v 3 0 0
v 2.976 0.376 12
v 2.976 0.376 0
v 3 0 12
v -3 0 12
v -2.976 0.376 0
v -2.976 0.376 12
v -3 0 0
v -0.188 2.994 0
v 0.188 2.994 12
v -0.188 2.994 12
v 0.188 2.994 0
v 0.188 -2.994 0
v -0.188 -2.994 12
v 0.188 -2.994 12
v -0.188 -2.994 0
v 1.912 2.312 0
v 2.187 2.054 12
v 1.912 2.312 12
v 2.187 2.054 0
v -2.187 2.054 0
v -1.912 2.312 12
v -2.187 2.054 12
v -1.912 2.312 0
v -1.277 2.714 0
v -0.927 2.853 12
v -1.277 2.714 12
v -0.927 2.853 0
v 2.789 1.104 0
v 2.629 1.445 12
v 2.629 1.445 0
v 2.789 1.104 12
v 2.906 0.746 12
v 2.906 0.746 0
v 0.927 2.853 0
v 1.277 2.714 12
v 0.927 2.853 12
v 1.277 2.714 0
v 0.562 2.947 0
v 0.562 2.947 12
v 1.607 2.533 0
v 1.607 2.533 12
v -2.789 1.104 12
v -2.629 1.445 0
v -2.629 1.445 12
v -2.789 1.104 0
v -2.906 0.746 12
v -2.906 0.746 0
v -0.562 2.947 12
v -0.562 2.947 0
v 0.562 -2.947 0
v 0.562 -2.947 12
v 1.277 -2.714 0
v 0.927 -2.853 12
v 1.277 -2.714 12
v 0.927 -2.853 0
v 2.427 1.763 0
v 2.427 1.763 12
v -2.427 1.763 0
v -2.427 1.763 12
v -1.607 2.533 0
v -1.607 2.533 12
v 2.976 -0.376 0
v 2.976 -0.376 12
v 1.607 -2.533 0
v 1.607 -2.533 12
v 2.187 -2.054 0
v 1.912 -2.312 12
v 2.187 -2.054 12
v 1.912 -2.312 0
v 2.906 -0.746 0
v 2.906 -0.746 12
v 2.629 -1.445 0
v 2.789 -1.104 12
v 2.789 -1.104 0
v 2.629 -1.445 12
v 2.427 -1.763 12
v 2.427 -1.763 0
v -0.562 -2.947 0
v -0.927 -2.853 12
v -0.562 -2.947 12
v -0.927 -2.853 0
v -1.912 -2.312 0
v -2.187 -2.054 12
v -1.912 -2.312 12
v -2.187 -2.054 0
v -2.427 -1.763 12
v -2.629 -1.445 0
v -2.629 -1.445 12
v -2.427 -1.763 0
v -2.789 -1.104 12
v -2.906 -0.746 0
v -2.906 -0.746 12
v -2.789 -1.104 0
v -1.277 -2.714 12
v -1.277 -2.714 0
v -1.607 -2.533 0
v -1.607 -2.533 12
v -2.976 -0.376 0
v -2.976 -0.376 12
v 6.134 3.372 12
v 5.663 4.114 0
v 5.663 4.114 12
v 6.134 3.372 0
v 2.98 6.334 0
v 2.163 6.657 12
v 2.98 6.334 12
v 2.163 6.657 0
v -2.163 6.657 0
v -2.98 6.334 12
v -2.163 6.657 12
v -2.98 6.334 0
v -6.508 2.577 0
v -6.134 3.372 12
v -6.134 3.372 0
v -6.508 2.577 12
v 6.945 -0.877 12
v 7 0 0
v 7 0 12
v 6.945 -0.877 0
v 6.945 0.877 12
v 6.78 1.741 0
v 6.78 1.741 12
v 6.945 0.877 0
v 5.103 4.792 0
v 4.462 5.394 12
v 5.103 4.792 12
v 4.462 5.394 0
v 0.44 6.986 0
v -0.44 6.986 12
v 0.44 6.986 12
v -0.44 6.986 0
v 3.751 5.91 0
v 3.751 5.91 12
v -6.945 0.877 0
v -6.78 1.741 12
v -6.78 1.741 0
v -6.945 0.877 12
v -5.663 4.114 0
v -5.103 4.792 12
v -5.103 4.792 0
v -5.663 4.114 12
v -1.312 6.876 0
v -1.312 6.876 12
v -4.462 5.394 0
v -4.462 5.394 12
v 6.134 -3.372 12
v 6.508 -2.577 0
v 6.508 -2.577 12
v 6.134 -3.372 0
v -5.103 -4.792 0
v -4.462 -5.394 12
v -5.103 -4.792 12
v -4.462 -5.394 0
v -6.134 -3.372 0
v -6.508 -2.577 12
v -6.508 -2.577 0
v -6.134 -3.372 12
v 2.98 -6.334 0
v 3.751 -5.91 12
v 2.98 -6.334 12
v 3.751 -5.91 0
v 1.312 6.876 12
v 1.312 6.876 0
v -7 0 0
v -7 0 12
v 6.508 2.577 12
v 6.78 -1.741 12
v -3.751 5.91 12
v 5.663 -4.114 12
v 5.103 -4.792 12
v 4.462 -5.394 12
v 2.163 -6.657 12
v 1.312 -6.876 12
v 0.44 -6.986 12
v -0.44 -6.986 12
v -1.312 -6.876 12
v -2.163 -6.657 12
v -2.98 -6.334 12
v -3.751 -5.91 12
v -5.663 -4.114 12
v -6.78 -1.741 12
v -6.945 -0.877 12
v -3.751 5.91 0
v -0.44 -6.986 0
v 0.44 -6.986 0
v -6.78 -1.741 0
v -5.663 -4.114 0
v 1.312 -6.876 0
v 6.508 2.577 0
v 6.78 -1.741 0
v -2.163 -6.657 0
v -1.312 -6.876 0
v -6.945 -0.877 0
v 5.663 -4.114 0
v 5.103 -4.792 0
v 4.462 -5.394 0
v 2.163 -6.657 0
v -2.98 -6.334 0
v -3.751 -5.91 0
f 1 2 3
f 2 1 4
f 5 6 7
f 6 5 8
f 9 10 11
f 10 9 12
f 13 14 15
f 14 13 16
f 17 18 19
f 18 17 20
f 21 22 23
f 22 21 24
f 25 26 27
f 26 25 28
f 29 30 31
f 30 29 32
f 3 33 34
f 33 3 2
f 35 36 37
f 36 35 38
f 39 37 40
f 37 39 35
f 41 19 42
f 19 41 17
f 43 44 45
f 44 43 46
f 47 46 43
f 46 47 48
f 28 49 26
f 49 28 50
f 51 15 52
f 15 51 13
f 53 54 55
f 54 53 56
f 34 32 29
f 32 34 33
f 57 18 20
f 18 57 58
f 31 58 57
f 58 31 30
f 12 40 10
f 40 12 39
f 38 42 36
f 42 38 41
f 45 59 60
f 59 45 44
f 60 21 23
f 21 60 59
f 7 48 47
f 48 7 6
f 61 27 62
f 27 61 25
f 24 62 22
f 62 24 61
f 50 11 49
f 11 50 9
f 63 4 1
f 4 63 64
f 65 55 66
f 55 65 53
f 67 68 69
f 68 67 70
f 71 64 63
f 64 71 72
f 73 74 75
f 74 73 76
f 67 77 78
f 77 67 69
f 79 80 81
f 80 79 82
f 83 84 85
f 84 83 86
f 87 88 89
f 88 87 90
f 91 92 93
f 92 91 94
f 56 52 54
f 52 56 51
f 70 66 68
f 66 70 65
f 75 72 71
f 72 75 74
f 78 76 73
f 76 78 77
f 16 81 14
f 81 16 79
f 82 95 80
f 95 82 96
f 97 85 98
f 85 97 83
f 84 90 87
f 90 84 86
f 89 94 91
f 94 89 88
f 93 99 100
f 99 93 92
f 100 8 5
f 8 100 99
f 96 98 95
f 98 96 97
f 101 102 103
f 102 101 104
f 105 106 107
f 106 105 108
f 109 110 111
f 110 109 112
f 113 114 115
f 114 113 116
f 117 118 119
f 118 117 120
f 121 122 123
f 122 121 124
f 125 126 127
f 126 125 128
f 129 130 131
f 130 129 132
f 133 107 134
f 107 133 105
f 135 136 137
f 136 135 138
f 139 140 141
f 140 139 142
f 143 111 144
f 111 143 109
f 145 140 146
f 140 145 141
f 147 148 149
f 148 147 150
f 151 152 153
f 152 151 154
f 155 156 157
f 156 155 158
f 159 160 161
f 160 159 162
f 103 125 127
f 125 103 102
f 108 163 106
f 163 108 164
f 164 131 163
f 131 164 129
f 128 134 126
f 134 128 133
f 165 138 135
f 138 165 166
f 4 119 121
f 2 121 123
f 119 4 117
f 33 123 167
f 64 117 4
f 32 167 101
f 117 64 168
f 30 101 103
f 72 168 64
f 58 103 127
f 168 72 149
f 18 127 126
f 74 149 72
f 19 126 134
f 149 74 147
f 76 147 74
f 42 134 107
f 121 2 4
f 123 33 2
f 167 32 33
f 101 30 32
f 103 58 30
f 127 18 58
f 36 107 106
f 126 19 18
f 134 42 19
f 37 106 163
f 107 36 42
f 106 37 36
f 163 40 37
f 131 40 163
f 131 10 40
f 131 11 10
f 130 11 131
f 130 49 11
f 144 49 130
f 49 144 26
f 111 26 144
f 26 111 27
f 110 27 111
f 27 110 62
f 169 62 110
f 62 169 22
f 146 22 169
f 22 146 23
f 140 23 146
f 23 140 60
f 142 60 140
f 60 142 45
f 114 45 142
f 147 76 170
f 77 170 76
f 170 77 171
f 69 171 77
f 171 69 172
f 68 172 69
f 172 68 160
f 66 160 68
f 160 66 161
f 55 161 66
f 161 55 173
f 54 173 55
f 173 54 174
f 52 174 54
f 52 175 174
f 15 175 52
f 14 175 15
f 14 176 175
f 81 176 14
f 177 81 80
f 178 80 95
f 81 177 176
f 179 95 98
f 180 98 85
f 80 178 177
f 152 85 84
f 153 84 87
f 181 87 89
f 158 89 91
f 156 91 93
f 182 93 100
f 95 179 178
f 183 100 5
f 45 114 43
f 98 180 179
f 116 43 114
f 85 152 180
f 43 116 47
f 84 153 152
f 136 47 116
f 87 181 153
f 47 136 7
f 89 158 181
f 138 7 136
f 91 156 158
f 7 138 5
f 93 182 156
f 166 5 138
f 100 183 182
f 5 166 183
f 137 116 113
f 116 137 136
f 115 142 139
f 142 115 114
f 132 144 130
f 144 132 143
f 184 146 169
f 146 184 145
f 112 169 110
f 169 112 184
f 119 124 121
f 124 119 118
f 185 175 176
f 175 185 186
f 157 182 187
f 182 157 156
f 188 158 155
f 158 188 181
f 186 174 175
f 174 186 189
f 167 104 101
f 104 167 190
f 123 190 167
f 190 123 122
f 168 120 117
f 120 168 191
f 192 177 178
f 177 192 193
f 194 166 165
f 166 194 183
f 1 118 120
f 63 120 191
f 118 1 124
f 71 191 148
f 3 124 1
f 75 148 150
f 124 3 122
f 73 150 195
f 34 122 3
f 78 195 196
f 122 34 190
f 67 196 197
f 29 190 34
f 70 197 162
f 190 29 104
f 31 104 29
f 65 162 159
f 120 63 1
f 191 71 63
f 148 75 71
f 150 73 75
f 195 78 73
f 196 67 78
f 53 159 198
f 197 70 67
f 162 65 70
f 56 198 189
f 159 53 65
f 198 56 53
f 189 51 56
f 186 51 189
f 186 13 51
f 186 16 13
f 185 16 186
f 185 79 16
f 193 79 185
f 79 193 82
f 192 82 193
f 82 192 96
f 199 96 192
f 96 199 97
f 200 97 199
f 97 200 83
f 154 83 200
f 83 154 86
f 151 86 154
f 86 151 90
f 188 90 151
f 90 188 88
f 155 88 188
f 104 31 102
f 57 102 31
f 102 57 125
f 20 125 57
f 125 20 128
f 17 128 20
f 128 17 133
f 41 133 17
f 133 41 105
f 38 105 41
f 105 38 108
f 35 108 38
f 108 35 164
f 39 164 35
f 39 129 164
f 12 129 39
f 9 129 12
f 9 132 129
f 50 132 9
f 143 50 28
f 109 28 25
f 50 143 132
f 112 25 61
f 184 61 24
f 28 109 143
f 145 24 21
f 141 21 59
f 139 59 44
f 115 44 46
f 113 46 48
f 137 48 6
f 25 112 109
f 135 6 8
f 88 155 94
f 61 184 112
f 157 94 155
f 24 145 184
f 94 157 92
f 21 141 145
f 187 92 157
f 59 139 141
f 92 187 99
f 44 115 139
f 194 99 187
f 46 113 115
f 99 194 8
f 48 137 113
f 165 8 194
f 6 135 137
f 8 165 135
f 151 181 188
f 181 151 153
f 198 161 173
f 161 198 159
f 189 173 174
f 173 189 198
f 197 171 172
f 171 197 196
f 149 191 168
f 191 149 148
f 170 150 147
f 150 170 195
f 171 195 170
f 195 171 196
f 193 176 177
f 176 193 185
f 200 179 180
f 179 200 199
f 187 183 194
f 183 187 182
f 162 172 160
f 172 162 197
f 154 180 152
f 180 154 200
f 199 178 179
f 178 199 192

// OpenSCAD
$fn = 50;


difference() {
	union() {
		translate(v = [0, 0, 0]) {
			rotate(a = [0, 0, 0]) {
				cylinder(h = 12, r = 7.0000000000);
			}
		}
	}
	union() {
		translate(v = [0.0000000000, 0.0000000000, 0]) {
			rotate(a = [0, 0, 0]) {
				translate(v = [0, 0, -50]) {
					rotate(a = [0, 0, 0]) {
						cylinder(h = 100, r = 3.0000000000);
					}
				}
			}
		}
		translate(v = [0.0000000000, 0.0000000000, 0]) {
			rotate(a = [0, 0, 0]) {
				translate(v = [0, 0, -50]) {
					rotate(a = [0, 0, 0]) {
						cylinder(h = 100, r = 1.5000000000);
					}
				}
			}
		}
	}
}
